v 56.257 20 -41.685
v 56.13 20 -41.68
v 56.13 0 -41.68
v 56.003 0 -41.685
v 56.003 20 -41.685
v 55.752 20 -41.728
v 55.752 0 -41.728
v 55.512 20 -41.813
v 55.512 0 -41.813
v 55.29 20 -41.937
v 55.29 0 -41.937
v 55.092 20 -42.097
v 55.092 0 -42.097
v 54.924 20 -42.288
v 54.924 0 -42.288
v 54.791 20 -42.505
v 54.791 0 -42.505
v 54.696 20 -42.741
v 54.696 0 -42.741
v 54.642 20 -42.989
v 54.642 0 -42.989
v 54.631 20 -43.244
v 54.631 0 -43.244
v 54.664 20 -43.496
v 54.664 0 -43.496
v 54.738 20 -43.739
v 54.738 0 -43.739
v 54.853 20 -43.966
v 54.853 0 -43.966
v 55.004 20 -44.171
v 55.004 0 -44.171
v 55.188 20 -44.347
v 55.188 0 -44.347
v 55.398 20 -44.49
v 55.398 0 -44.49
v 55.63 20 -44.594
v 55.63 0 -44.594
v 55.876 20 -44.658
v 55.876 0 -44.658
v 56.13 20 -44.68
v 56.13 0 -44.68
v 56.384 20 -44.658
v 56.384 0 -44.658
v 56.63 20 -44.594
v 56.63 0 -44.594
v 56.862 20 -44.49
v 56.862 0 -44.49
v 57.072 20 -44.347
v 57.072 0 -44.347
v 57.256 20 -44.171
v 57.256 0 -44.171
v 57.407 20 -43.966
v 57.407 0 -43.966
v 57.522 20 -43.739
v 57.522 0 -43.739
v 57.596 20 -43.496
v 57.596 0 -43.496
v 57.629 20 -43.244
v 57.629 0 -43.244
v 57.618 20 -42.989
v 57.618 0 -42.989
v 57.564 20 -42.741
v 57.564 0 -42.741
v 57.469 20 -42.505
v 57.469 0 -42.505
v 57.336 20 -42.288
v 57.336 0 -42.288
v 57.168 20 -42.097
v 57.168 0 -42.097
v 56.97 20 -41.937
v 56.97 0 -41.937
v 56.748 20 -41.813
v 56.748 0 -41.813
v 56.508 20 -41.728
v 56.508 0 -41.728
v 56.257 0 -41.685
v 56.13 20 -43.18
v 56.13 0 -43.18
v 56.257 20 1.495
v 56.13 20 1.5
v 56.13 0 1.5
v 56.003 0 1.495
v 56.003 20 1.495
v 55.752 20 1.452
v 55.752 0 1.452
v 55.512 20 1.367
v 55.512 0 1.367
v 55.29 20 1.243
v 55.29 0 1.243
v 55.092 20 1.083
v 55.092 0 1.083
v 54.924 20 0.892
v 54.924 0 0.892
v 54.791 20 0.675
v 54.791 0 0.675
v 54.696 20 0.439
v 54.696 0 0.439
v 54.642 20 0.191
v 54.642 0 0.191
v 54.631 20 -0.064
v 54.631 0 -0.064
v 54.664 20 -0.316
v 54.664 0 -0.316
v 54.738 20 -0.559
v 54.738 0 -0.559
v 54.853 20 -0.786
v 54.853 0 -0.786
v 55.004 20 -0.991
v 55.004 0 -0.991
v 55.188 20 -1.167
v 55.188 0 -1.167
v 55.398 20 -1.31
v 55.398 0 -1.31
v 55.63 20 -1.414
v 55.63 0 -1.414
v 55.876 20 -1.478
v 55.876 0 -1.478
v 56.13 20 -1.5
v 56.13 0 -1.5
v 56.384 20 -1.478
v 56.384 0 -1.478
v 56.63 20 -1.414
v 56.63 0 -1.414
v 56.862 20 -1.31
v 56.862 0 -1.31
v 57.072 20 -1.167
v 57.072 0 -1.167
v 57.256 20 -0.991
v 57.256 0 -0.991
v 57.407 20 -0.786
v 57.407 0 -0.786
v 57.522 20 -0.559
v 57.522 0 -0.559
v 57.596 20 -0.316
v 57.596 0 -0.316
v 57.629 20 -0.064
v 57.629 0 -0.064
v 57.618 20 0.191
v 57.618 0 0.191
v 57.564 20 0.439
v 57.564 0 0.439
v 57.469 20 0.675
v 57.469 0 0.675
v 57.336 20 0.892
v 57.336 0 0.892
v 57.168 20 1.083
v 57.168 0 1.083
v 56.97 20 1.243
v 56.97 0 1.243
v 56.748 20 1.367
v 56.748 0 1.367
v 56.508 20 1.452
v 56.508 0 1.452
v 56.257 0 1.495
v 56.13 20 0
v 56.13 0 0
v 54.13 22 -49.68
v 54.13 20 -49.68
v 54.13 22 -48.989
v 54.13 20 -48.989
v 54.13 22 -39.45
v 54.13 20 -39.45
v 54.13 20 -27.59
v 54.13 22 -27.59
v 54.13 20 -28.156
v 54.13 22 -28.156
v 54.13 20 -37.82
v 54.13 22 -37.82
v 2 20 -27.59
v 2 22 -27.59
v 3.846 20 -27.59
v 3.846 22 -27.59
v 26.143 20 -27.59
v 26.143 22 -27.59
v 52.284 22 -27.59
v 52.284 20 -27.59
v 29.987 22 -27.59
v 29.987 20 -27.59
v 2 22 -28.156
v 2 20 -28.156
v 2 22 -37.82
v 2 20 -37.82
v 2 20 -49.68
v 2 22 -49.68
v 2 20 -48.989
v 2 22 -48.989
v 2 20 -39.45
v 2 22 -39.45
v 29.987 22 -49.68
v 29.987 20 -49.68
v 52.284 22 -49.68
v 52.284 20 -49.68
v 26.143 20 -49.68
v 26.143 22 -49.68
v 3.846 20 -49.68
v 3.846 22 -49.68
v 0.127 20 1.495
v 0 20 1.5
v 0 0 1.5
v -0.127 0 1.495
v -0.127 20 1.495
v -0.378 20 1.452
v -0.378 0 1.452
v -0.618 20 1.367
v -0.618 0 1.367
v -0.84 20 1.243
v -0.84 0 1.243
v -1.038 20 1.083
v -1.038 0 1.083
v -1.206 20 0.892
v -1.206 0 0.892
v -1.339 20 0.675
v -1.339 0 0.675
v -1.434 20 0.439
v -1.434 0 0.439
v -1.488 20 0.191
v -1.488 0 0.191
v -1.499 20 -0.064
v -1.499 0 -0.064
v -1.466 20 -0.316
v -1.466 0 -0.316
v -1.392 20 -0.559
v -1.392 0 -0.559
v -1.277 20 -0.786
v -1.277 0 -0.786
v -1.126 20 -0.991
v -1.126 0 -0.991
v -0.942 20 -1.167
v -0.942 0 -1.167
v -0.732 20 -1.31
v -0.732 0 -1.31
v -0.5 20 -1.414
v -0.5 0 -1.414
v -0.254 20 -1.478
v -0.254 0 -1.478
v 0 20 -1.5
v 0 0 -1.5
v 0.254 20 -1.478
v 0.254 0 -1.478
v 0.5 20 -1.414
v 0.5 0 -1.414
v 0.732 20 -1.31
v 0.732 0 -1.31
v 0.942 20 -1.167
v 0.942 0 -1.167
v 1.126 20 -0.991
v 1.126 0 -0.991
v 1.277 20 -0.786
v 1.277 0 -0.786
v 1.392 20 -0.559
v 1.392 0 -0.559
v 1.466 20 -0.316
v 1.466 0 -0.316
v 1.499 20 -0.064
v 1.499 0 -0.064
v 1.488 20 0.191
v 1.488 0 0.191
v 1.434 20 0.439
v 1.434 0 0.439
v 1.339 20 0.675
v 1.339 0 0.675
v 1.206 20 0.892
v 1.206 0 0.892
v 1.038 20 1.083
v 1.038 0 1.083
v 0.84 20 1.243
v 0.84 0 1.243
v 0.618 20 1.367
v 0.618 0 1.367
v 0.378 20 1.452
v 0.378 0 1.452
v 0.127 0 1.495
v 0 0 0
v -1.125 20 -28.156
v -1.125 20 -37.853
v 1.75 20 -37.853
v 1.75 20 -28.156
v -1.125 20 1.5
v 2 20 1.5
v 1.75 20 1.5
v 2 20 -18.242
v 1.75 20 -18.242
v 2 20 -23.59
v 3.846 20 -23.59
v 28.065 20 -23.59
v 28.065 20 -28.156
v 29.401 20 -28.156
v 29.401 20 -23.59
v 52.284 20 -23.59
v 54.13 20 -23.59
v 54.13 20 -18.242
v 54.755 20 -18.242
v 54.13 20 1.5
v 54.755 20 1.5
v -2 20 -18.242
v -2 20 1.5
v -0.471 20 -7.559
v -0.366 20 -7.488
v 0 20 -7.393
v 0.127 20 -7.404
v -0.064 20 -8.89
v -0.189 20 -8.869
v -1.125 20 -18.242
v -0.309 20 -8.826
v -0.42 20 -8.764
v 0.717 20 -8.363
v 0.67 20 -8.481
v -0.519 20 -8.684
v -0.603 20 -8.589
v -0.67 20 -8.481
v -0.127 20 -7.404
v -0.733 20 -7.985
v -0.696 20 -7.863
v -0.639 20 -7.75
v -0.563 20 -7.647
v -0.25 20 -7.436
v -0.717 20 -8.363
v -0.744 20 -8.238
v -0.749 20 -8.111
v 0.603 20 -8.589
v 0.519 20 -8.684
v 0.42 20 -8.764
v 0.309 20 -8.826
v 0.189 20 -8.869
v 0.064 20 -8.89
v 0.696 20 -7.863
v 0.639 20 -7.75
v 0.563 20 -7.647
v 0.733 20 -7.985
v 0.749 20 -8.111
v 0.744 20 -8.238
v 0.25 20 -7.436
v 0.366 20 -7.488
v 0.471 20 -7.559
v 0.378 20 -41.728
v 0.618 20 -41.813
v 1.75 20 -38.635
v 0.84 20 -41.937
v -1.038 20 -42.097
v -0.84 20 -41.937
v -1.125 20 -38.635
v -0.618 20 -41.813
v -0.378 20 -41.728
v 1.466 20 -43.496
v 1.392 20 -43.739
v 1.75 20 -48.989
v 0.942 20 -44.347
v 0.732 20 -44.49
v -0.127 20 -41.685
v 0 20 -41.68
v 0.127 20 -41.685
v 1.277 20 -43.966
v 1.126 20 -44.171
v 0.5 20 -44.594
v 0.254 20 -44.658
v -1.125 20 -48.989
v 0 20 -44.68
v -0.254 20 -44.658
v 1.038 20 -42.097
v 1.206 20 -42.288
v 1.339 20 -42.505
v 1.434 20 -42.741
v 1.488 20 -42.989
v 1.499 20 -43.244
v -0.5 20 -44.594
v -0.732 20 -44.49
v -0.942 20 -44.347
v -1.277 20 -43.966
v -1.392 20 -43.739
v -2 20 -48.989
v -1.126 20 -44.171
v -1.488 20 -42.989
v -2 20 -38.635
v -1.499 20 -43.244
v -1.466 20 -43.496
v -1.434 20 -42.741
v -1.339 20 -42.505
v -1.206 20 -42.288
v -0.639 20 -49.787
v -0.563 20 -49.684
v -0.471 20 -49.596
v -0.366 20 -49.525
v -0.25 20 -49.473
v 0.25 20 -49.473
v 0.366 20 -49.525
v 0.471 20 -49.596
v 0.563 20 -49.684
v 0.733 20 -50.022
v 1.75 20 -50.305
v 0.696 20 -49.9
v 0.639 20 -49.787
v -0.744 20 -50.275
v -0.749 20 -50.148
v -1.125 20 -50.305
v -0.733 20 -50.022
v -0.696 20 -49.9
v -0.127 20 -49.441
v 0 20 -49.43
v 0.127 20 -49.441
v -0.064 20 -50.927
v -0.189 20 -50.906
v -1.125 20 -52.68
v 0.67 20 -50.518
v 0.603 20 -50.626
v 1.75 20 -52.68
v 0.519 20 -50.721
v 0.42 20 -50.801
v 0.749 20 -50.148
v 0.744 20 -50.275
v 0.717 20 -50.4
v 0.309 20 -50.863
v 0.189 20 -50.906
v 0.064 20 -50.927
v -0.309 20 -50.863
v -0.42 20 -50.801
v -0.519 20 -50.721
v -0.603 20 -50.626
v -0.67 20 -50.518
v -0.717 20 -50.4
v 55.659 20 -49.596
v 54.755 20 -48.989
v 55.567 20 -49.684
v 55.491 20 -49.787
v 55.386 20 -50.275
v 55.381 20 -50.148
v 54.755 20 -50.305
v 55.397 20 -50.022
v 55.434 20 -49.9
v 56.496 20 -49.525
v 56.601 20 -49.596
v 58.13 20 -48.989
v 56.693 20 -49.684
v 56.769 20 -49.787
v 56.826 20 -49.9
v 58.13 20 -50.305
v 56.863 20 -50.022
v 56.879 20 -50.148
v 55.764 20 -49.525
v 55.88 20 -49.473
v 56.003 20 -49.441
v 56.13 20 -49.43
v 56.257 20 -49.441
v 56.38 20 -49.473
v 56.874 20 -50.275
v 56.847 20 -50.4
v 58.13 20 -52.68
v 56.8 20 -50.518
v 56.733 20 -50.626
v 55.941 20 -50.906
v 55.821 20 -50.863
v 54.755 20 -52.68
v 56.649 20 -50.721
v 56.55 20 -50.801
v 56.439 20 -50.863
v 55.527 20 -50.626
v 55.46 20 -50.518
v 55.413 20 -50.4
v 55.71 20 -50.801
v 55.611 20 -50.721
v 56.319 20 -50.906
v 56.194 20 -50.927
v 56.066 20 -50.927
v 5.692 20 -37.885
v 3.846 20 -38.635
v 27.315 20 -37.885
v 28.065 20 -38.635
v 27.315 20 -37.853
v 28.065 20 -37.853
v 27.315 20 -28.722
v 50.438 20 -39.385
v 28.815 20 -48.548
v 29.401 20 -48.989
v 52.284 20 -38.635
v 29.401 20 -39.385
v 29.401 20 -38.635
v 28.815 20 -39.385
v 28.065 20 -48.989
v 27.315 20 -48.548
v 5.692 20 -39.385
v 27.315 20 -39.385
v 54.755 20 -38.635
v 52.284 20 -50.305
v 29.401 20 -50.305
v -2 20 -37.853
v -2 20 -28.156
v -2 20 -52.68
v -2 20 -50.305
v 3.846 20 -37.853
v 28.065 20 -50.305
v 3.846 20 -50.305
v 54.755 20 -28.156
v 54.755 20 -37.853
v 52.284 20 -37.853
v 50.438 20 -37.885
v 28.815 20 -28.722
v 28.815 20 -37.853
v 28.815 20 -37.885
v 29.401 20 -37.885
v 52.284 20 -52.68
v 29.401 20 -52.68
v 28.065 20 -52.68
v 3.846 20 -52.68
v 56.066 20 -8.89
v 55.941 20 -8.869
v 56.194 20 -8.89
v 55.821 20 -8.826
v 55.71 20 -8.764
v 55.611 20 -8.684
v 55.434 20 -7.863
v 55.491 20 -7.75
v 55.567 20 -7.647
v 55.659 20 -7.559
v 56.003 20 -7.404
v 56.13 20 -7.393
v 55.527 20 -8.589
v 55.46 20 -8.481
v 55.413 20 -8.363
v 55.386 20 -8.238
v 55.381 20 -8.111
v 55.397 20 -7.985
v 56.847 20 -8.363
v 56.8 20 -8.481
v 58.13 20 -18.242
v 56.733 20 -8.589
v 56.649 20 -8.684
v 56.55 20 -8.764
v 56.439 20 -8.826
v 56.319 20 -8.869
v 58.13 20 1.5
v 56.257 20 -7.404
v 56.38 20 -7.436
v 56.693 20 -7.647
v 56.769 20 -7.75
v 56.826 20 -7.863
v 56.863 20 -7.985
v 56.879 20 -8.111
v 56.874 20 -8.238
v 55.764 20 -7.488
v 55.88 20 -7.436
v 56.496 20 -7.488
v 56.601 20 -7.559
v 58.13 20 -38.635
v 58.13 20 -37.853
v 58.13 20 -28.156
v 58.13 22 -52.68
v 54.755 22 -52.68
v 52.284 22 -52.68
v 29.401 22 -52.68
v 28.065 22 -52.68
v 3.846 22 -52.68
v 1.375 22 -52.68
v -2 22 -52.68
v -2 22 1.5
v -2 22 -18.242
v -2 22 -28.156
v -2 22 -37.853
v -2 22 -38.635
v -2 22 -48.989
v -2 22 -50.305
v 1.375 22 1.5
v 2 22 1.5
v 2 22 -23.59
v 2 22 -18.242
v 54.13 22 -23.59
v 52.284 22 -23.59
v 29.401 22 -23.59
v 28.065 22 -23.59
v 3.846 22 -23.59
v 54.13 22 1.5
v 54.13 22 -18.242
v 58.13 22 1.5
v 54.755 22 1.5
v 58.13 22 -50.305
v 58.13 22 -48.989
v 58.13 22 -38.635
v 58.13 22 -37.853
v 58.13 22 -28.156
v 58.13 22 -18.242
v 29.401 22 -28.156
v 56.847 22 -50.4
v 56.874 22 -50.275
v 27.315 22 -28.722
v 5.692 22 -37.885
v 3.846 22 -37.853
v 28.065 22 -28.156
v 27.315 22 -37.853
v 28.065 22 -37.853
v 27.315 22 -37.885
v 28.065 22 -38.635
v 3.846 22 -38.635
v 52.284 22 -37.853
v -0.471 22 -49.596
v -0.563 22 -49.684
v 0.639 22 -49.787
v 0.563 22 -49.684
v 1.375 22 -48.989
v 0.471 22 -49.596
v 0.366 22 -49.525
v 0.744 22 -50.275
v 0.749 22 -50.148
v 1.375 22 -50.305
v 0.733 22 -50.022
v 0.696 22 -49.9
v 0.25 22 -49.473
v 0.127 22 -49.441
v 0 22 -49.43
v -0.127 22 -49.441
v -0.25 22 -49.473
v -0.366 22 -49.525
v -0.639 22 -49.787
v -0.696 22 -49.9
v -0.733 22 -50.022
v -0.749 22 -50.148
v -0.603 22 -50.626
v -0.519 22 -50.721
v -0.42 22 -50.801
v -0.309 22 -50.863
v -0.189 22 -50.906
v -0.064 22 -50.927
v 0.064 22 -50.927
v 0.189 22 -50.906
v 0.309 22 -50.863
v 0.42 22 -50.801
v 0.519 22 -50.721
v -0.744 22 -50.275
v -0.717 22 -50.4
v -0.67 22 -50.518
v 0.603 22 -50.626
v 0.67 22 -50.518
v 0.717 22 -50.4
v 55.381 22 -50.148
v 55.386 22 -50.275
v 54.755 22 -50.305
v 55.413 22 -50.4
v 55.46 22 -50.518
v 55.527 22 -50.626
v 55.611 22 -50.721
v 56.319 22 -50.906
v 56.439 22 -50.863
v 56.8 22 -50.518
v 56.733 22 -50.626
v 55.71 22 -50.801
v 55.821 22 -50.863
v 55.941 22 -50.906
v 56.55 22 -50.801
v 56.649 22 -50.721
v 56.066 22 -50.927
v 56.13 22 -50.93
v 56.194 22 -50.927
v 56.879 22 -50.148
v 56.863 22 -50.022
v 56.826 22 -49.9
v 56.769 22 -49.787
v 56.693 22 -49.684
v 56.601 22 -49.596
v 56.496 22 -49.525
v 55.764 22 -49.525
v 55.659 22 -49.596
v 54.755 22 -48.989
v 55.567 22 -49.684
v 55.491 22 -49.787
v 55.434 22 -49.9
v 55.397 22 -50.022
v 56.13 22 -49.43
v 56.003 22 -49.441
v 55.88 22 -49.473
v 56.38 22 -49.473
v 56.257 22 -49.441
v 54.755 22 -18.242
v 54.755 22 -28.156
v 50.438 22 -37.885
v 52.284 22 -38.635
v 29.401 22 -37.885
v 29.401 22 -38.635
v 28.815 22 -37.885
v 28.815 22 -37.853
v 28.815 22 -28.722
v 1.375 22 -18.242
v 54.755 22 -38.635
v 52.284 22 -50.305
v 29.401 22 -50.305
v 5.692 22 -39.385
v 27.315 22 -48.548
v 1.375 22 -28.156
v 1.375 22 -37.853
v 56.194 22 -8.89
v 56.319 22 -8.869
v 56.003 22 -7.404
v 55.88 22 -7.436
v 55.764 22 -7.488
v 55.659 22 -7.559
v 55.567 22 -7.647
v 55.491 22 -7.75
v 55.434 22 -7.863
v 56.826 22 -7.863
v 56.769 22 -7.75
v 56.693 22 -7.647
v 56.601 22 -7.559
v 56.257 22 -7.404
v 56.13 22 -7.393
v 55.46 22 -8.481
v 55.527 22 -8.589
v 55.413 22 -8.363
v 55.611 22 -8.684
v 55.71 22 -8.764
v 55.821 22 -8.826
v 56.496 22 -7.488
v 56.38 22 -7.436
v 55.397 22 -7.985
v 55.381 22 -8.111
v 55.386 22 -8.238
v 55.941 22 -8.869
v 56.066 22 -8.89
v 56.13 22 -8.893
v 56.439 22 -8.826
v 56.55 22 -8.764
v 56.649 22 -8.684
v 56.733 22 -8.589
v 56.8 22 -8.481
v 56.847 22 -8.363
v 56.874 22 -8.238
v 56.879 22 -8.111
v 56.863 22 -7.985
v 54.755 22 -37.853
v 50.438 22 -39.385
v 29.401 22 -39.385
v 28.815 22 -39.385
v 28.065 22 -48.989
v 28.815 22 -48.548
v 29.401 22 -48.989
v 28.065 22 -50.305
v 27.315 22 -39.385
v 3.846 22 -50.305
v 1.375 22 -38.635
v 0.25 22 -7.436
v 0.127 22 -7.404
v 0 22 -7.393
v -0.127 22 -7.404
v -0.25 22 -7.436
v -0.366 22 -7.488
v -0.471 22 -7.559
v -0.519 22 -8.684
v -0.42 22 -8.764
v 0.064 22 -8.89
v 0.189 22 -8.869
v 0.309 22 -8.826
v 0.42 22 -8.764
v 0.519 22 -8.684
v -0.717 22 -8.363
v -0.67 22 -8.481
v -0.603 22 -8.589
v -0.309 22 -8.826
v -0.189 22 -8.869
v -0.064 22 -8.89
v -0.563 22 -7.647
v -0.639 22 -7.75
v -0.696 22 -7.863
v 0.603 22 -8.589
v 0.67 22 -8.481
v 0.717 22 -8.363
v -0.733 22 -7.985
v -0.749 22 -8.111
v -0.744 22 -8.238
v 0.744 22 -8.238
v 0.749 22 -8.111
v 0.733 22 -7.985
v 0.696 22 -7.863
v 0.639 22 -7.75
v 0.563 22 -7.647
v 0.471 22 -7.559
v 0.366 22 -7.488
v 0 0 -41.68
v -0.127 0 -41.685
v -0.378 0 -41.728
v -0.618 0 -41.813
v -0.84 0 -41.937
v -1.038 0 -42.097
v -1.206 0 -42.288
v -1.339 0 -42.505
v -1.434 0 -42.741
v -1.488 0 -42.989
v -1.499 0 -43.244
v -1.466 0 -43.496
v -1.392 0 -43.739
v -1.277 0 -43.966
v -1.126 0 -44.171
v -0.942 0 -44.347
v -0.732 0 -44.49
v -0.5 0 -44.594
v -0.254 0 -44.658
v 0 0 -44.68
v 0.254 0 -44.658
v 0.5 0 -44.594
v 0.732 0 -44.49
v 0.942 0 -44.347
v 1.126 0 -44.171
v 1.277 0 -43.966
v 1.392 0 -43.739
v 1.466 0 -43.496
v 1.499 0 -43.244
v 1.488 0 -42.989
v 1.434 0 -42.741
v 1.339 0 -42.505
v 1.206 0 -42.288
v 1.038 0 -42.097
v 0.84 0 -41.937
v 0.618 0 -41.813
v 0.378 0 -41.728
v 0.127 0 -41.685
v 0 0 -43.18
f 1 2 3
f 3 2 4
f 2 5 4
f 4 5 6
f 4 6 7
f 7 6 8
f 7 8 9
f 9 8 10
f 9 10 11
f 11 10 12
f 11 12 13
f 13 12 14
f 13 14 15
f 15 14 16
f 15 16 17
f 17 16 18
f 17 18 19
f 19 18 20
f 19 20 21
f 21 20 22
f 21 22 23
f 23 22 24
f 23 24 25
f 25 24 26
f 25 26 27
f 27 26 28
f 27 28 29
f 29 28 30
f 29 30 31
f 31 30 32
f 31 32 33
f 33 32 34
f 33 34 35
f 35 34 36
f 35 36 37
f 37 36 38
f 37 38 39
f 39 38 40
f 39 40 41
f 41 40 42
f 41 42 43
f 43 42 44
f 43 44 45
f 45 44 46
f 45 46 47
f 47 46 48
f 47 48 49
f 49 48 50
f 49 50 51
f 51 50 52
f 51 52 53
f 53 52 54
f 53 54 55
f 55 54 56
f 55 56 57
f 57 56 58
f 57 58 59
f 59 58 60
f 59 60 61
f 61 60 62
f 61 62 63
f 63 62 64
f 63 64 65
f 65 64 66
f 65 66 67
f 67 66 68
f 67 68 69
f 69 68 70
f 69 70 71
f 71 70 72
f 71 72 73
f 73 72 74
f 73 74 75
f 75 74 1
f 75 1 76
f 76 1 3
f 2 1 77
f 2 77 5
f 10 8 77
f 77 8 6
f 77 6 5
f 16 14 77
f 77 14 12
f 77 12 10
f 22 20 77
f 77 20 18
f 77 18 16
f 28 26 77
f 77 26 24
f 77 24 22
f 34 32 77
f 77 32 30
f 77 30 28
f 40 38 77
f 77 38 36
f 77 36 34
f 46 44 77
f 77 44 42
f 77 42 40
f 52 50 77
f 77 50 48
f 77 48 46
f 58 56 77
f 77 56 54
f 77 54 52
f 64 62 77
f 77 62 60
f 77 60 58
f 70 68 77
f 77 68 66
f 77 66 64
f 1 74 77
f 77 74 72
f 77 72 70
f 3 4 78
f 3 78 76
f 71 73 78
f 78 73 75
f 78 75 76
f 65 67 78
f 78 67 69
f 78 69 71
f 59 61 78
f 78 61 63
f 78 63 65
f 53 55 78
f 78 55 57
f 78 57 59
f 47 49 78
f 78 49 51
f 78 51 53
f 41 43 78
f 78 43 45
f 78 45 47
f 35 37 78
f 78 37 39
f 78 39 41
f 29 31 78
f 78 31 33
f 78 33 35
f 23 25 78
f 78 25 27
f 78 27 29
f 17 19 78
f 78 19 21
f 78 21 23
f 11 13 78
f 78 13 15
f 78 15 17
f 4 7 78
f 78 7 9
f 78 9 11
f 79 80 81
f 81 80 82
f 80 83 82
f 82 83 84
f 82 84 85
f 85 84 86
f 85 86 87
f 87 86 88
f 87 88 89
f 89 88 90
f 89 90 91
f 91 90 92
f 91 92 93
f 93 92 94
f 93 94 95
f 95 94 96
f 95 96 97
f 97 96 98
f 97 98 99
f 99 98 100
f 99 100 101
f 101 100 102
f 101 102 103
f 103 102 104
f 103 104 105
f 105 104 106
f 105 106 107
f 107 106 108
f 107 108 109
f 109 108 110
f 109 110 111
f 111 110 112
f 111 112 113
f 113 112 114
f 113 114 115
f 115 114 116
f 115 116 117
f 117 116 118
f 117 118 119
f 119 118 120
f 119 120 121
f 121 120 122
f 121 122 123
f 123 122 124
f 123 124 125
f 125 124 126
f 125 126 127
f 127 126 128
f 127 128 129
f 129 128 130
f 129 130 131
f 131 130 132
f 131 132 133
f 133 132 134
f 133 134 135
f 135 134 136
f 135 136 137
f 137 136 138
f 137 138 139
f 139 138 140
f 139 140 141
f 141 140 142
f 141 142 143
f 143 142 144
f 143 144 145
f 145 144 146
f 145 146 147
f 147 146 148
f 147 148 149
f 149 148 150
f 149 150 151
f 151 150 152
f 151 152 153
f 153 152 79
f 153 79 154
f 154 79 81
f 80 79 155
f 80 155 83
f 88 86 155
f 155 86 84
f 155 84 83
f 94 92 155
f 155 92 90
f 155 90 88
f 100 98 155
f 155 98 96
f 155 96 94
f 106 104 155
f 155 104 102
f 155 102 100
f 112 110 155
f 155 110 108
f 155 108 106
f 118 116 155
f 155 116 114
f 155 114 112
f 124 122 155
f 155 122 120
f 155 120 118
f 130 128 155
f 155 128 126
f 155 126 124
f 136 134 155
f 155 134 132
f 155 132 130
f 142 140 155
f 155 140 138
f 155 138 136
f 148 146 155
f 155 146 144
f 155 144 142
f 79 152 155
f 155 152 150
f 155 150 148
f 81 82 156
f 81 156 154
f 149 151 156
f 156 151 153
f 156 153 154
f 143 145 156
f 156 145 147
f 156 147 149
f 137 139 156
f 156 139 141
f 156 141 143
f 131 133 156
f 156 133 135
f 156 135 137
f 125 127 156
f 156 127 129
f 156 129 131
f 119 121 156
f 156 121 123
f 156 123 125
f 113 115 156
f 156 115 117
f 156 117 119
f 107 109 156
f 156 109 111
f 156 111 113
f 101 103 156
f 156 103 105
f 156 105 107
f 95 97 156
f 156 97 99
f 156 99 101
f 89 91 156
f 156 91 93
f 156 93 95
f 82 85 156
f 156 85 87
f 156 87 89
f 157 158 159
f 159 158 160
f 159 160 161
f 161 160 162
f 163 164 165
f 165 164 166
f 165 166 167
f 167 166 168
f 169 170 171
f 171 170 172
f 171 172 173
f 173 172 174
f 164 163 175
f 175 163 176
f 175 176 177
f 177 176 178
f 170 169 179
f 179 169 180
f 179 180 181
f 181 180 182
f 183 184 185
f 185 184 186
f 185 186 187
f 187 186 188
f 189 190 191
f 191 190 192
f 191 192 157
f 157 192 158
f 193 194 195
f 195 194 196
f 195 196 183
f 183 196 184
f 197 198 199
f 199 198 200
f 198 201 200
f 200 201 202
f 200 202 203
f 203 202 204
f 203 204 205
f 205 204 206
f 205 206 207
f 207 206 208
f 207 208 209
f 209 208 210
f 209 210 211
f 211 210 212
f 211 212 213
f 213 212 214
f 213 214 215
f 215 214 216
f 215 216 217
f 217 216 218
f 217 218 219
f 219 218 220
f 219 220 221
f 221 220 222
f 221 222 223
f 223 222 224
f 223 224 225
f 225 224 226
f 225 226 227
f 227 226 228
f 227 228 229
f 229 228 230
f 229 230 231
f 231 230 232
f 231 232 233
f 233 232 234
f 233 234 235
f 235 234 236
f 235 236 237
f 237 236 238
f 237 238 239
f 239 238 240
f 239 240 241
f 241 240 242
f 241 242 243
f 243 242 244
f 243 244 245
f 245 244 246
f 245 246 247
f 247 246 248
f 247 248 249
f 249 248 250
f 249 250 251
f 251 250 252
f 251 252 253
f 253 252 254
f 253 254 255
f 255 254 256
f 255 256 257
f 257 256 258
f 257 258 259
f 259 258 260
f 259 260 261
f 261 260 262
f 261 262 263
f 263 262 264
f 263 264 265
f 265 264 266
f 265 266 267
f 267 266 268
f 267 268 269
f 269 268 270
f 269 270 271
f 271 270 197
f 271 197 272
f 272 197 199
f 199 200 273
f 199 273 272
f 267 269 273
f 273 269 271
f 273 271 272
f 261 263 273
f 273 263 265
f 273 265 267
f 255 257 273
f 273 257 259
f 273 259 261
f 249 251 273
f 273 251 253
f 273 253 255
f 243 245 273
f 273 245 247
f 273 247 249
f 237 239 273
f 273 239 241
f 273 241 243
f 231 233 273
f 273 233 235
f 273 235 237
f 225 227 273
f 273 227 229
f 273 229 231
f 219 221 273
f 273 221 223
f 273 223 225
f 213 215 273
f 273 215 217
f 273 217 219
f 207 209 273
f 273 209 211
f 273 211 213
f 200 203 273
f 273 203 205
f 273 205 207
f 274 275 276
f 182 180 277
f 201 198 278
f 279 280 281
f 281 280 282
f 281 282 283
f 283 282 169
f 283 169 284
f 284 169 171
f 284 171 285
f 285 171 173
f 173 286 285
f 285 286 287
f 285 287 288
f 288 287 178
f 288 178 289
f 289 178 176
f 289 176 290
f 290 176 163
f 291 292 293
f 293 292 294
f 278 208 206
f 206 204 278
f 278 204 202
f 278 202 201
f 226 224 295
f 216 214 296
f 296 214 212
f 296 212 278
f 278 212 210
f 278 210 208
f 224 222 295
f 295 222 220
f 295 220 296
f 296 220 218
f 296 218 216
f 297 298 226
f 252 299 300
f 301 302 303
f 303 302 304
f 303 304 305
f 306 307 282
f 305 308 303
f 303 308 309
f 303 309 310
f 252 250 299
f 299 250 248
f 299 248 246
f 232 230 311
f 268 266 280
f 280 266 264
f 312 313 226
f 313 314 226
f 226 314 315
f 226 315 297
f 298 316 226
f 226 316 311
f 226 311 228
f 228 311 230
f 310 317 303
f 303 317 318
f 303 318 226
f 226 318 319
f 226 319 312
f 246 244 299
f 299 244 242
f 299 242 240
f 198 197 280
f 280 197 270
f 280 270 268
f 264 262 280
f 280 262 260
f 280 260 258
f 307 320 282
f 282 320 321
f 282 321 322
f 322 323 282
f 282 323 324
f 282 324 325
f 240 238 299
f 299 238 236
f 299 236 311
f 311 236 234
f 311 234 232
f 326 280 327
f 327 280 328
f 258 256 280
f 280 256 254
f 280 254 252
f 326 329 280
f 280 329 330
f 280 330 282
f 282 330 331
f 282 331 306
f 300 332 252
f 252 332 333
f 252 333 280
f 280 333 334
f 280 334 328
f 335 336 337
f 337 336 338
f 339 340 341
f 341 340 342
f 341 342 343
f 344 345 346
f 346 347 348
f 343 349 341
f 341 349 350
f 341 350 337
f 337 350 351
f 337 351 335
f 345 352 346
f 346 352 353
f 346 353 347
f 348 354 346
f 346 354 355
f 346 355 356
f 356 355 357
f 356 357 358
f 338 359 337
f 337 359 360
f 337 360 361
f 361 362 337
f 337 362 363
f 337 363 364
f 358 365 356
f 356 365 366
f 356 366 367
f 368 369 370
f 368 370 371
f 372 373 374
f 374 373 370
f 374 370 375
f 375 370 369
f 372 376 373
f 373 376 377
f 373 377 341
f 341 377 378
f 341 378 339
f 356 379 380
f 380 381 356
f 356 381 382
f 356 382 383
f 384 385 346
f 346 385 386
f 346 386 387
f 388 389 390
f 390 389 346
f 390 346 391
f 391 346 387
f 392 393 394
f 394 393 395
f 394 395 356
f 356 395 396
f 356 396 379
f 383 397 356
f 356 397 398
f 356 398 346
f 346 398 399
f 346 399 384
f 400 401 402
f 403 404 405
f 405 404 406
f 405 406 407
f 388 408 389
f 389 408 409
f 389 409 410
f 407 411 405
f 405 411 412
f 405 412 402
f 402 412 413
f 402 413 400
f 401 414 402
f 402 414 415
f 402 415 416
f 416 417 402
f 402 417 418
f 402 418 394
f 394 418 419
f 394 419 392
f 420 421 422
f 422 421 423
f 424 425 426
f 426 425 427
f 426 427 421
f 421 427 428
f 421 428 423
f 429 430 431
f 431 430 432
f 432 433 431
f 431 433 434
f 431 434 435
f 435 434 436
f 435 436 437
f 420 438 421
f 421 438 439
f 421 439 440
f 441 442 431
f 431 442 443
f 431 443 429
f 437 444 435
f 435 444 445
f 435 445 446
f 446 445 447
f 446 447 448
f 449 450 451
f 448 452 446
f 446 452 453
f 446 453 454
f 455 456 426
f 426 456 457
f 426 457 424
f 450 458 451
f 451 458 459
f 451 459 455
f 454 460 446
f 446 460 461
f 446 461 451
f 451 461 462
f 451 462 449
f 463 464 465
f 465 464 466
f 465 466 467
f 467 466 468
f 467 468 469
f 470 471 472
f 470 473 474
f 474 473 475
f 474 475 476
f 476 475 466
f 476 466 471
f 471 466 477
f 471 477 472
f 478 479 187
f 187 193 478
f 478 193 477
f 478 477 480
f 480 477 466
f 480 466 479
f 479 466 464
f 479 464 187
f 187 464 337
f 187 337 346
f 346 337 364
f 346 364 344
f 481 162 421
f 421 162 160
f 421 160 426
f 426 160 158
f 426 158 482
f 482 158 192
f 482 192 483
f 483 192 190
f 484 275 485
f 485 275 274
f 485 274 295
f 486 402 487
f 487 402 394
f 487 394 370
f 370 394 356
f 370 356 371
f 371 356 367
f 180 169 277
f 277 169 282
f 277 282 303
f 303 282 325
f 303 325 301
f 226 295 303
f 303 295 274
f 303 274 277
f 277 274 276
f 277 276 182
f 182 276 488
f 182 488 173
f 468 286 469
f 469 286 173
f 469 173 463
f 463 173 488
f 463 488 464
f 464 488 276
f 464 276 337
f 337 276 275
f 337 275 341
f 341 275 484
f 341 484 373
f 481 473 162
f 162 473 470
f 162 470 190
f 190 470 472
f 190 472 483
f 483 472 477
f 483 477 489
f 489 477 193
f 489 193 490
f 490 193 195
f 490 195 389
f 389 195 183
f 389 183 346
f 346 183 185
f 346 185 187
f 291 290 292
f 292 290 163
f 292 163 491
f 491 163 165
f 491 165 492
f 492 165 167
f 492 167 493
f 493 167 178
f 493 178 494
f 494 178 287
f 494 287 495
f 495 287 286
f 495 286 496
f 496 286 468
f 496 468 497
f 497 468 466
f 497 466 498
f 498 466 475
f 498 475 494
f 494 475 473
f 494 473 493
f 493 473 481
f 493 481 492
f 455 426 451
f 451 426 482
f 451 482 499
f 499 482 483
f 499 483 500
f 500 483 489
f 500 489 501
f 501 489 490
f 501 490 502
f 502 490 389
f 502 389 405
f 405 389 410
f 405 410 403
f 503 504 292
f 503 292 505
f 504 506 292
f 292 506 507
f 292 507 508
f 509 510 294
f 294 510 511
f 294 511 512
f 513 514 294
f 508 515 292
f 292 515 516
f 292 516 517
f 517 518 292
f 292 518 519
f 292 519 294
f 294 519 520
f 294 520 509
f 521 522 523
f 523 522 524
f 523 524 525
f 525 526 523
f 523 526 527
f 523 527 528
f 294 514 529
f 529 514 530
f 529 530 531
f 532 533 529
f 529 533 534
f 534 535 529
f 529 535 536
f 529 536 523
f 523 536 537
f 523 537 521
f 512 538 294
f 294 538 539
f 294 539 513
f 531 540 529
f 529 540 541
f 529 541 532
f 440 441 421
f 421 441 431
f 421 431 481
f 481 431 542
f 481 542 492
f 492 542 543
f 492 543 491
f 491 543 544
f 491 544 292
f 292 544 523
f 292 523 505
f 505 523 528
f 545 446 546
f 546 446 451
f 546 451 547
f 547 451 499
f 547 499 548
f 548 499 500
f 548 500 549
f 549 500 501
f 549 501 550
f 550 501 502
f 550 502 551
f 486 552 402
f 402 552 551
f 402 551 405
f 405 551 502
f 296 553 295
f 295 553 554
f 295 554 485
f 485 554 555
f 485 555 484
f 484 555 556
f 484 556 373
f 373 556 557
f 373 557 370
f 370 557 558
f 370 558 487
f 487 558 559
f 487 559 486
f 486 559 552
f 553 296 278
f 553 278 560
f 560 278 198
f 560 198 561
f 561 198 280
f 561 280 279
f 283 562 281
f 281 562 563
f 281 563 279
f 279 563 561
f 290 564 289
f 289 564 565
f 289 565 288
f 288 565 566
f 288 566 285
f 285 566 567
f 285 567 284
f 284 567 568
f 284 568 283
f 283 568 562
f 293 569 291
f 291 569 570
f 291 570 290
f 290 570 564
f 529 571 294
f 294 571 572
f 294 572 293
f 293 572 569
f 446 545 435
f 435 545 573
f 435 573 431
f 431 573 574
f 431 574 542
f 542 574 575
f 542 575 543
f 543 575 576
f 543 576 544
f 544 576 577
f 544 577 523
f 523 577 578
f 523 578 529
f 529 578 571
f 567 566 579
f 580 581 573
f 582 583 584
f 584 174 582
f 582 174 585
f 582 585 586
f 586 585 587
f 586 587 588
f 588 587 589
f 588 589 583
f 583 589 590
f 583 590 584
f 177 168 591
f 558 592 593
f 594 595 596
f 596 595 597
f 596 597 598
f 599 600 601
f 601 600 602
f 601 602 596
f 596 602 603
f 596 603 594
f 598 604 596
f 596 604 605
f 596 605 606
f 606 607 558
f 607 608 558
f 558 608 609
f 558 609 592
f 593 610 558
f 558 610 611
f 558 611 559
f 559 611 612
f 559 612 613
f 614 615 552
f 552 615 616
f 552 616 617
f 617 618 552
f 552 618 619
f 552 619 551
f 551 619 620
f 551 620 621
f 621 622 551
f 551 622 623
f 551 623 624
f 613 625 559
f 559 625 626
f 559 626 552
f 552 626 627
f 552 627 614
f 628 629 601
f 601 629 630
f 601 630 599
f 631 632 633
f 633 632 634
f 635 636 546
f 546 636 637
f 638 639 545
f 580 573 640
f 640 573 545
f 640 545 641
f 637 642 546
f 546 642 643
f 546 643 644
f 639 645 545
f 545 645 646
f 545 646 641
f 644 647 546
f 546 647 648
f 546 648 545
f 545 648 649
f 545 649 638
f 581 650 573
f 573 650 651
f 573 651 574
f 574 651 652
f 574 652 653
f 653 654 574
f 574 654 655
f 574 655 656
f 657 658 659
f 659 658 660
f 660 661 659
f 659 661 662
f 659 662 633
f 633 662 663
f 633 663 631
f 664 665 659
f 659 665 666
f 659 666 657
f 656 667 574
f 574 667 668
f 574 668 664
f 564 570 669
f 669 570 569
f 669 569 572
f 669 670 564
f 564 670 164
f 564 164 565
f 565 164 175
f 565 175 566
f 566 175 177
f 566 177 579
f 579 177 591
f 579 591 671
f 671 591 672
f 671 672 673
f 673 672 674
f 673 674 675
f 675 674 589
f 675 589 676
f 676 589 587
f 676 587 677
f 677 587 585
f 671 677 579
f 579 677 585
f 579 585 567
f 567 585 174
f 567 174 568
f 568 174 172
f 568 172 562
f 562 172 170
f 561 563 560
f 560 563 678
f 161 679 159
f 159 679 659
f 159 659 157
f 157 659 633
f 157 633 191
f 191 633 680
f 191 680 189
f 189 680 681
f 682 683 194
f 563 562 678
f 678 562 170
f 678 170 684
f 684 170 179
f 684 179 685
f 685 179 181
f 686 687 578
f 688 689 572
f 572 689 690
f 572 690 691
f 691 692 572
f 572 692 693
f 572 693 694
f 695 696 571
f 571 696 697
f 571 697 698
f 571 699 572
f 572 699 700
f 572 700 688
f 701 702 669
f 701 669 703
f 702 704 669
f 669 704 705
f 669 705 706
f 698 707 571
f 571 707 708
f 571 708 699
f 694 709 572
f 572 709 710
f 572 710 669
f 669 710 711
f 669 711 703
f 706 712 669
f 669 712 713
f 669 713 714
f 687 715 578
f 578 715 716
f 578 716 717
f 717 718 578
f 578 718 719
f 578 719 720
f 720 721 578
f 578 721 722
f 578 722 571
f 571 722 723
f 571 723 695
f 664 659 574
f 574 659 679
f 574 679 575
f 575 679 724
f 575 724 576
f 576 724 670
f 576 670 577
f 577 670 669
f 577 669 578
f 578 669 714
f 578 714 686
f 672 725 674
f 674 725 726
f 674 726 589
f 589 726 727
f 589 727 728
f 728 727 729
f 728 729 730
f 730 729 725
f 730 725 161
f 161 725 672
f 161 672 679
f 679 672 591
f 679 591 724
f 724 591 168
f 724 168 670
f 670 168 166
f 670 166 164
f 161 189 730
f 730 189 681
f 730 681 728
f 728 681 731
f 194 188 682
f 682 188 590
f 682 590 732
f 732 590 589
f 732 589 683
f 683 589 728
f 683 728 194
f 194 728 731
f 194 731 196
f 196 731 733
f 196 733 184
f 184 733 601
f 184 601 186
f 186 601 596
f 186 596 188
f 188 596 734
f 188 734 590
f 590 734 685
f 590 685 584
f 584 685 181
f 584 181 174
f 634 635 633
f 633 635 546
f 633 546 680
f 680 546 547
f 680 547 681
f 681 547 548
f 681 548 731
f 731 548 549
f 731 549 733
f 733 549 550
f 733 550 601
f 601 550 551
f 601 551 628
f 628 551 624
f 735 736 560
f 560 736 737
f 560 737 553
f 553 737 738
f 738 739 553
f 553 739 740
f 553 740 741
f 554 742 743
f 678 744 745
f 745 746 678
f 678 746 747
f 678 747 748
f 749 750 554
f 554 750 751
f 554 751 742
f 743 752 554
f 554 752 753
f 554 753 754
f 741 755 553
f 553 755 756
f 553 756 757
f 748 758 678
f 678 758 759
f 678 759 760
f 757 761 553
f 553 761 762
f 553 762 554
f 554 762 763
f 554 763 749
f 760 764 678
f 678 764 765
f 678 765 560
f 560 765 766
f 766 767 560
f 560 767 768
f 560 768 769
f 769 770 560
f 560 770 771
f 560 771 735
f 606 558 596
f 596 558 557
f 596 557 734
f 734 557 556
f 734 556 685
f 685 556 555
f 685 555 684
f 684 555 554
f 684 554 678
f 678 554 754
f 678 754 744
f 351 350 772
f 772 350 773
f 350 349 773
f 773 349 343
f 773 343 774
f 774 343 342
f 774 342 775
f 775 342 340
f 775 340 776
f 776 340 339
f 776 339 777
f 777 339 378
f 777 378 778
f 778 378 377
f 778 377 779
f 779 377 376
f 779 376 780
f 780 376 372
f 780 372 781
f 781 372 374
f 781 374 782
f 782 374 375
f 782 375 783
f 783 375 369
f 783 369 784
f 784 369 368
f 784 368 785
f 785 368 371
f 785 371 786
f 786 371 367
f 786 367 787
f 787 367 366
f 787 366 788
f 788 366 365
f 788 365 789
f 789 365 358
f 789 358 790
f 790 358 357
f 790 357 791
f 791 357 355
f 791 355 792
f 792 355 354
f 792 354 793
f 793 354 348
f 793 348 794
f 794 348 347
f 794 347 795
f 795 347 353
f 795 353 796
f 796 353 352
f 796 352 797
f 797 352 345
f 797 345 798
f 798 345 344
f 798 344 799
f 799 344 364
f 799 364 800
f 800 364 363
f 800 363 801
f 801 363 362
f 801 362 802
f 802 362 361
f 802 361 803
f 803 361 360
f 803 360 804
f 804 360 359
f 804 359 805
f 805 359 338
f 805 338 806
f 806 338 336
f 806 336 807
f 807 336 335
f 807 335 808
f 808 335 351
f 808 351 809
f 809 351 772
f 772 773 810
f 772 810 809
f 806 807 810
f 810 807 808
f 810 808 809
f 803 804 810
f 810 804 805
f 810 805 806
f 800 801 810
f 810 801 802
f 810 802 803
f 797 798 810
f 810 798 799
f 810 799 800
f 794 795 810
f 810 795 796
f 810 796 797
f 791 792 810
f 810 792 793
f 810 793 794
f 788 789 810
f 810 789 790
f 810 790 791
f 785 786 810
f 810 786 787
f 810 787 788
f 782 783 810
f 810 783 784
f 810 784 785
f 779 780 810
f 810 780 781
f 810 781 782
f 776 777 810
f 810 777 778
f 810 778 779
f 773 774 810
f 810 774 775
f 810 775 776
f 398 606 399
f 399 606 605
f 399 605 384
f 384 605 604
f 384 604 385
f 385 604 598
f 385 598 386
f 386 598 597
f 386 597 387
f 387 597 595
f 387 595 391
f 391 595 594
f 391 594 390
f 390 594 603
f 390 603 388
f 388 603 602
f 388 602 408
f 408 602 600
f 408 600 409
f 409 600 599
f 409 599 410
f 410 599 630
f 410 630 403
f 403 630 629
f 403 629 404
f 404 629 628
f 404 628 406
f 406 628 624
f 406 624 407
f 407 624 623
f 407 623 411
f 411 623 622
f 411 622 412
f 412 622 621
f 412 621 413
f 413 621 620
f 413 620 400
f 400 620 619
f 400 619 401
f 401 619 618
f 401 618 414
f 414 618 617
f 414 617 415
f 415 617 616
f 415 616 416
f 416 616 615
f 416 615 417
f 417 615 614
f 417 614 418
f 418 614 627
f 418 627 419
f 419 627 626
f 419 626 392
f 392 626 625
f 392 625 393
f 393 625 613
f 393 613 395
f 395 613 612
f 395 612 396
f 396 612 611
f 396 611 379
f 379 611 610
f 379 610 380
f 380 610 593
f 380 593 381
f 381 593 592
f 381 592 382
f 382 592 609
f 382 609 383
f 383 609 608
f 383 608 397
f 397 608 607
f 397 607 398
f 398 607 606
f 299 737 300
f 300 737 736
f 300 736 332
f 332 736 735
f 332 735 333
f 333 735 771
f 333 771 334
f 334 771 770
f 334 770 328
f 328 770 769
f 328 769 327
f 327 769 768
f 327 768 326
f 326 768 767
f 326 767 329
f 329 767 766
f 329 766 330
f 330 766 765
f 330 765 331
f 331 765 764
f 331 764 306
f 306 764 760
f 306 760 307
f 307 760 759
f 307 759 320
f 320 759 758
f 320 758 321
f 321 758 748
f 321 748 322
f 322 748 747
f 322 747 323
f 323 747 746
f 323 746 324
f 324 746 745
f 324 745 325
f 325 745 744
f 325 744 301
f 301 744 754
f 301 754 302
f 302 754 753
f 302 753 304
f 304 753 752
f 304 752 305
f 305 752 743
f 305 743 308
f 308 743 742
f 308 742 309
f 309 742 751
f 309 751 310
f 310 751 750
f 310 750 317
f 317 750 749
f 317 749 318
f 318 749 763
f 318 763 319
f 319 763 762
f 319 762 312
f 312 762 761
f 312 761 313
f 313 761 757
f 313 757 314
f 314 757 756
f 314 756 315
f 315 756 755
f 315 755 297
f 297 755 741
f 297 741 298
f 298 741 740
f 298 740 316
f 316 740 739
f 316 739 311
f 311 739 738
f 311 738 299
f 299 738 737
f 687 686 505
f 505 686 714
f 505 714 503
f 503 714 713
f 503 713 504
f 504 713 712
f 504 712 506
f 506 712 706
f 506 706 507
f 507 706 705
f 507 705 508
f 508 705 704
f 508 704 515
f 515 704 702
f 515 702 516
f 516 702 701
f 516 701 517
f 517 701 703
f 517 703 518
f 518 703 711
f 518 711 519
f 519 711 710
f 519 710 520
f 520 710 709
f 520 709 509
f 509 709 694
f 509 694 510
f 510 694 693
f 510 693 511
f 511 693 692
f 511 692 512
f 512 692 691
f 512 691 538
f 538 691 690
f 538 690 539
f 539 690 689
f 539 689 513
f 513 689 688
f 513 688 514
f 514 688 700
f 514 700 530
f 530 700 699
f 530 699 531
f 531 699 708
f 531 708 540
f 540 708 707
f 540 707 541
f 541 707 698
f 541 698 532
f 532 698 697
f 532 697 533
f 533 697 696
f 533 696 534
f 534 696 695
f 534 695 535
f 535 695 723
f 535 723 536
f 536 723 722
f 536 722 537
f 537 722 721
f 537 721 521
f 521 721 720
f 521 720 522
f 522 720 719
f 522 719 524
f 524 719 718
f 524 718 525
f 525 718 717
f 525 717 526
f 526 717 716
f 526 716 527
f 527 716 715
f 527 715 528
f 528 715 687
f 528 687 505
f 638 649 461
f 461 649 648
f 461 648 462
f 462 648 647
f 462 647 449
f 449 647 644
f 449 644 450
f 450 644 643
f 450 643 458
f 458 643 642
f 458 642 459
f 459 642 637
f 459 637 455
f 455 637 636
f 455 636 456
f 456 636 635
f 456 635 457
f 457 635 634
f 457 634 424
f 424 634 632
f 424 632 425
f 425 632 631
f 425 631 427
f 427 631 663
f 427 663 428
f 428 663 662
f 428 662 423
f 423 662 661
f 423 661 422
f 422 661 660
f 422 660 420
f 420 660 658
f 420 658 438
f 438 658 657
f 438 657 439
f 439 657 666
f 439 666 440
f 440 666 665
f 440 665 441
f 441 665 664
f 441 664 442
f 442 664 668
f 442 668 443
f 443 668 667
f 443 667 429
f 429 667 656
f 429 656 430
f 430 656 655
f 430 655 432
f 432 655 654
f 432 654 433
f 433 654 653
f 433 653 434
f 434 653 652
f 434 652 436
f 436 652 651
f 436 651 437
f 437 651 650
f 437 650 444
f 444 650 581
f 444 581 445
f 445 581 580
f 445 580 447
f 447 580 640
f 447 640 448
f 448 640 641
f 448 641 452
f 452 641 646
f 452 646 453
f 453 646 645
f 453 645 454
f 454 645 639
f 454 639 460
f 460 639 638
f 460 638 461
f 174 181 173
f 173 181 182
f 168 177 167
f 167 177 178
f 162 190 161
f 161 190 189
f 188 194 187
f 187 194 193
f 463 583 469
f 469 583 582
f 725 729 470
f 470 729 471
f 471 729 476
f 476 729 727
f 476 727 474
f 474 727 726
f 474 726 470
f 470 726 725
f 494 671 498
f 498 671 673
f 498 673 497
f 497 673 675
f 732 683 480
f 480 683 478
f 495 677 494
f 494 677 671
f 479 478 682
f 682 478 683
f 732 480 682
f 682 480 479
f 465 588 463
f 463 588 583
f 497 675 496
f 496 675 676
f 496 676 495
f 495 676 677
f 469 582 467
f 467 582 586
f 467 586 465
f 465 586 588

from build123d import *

# Parameters (mm, degrees)
SKETCH_1_R          = 1.5
EXTRUDE_1_DEPTH     = 20
EXTRUDE_1_2_DEPTH   = 20
EXTRUDE_1_3_DEPTH   = 20
EXTRUDE_1_4_DEPTH   = 20
EXTRUDE_2_DEPTH     = 2
SKETCH_4_R          = 0.75
CUT_EXTRUDE_1_DEPTH = 2
SKETCH_5_W          = 52.13
SKETCH_5_H          = 3
EXTRUDE_3_DEPTH     = 2
EXTRUDE_START       = -2
EXTRUDE_3_2_DEPTH   = 2


# Read off the part's stored shape, not the designer's step: 拉伸-薄壁3
with BuildPart() as part:
    # 草图1 → 凸台-拉伸1 (new body)
    with BuildSketch(Plane(origin=(0, 0, 0), x_dir=(1, 0, 0), z_dir=(0, 1, 0))):
        with Locations(Location((0, 0, 0), (0, 0, 270))):
            Circle(SKETCH_1_R)
    extrude(amount=EXTRUDE_1_DEPTH)



with BuildPart() as body_2:
    # 草图1 → Extrude 1 2 (new body)
    with BuildSketch(Plane(origin=(0, 0, 0), x_dir=(1, 0, 0), z_dir=(0, 1, 0))):
        with Locations(Location((0, 43.18, 0), (0, 0, 270))):
            Circle(SKETCH_1_R)
    extrude(amount=EXTRUDE_1_2_DEPTH)


with BuildPart() as body_3:
    # 草图1 → Extrude 1 3 (new body)
    with BuildSketch(Plane(origin=(0, 0, 0), x_dir=(1, 0, 0), z_dir=(0, 1, 0))):
        with Locations(Location((56.13, 43.18, 0), (0, 0, 270))):
            Circle(SKETCH_1_R)
    extrude(amount=EXTRUDE_1_3_DEPTH)


with BuildPart() as body_4:
    # 草图1 → Extrude 1 4 (new body)
    with BuildSketch(Plane(origin=(0, 0, 0), x_dir=(1, 0, 0), z_dir=(0, 1, 0))):
        with Locations(Location((56.13, 0, 0), (0, 0, 270))):
            Circle(SKETCH_1_R)
    extrude(amount=EXTRUDE_1_4_DEPTH)


with BuildPart() as part_1:
    add(part.part)

    add(body_2.part)  # 凸台-拉伸2 merges body 2
    # 草图2 → 凸台-拉伸2 (add)
    with BuildSketch(Plane(origin=(0, 20, 0), x_dir=(1, 0, 0), z_dir=(0, 1, 0))):
        Polygon((-2, 52.68), (-2, -1.5), (2, -1.5), (2, 23.59), (54.13, 23.59), (54.13, -1.5), (58.13, -1.5), (58.13, 52.68), (54.13, 52.68), (54.13, 27.59), (2, 27.59), (2, 52.68), align=None)
    extrude(amount=EXTRUDE_2_DEPTH)

    # 草图4 → 切除-拉伸1 (cut)
    with BuildSketch(Plane(origin=(0, 22, 0), x_dir=(1, 0, 0), z_dir=(0, 1, 0))):
        with Locations(Location((0, 50.18, 0), (0, 0, 270))):
            Circle(SKETCH_4_R)
        with Locations(Location((0, 8.143, 0), (0, 0, 270))):
            Circle(SKETCH_4_R)
        with Locations(Location((56.13, 8.143, 0), (0, 0, 270))):
            Circle(SKETCH_4_R)
        with Locations(Location((56.13, 50.18, 0), (0, 0, 270))):
            Circle(SKETCH_4_R)
    extrude(amount=-CUT_EXTRUDE_1_DEPTH, mode=Mode.SUBTRACT)

    # 草图5 → Extrude 3 (add)
    with BuildSketch(Plane.XZ.offset(-20)):
        with Locations((28.065, -51.18)):
            Rectangle(SKETCH_5_W, SKETCH_5_H)
    extrude(amount=-EXTRUDE_3_DEPTH)

    # Extrude 3 2 outline → Extrude 3 2 (add)
    with BuildSketch(Plane.XZ.offset(-20).offset(EXTRUDE_START)):
        Polygon((26.142732706, -27.59), (2, -37.820442461), (2, -39.449557539), (26.142732706, -49.68), (29.987267294, -49.68), (54.13, -39.449557539), (54.13, -37.820442461), (29.987267294, -27.59), align=None)
        Polygon((27.315, -48.547631219), (5.692185809, -39.385), (27.315, -39.385), align=None, mode=Mode.SUBTRACT)
        Polygon((28.815, -39.385), (50.437814191, -39.385), (28.815, -48.547631219), align=None, mode=Mode.SUBTRACT)
        Polygon((27.315, -37.885), (5.692185809, -37.885), (27.315, -28.722368781), align=None, mode=Mode.SUBTRACT)
        Polygon((28.815, -37.885), (28.815, -28.722368781), (50.437814191, -37.885), align=None, mode=Mode.SUBTRACT)
    extrude(amount=EXTRUDE_3_2_DEPTH)


solid = Compound([body_3.part, body_4.part, part_1.part])
